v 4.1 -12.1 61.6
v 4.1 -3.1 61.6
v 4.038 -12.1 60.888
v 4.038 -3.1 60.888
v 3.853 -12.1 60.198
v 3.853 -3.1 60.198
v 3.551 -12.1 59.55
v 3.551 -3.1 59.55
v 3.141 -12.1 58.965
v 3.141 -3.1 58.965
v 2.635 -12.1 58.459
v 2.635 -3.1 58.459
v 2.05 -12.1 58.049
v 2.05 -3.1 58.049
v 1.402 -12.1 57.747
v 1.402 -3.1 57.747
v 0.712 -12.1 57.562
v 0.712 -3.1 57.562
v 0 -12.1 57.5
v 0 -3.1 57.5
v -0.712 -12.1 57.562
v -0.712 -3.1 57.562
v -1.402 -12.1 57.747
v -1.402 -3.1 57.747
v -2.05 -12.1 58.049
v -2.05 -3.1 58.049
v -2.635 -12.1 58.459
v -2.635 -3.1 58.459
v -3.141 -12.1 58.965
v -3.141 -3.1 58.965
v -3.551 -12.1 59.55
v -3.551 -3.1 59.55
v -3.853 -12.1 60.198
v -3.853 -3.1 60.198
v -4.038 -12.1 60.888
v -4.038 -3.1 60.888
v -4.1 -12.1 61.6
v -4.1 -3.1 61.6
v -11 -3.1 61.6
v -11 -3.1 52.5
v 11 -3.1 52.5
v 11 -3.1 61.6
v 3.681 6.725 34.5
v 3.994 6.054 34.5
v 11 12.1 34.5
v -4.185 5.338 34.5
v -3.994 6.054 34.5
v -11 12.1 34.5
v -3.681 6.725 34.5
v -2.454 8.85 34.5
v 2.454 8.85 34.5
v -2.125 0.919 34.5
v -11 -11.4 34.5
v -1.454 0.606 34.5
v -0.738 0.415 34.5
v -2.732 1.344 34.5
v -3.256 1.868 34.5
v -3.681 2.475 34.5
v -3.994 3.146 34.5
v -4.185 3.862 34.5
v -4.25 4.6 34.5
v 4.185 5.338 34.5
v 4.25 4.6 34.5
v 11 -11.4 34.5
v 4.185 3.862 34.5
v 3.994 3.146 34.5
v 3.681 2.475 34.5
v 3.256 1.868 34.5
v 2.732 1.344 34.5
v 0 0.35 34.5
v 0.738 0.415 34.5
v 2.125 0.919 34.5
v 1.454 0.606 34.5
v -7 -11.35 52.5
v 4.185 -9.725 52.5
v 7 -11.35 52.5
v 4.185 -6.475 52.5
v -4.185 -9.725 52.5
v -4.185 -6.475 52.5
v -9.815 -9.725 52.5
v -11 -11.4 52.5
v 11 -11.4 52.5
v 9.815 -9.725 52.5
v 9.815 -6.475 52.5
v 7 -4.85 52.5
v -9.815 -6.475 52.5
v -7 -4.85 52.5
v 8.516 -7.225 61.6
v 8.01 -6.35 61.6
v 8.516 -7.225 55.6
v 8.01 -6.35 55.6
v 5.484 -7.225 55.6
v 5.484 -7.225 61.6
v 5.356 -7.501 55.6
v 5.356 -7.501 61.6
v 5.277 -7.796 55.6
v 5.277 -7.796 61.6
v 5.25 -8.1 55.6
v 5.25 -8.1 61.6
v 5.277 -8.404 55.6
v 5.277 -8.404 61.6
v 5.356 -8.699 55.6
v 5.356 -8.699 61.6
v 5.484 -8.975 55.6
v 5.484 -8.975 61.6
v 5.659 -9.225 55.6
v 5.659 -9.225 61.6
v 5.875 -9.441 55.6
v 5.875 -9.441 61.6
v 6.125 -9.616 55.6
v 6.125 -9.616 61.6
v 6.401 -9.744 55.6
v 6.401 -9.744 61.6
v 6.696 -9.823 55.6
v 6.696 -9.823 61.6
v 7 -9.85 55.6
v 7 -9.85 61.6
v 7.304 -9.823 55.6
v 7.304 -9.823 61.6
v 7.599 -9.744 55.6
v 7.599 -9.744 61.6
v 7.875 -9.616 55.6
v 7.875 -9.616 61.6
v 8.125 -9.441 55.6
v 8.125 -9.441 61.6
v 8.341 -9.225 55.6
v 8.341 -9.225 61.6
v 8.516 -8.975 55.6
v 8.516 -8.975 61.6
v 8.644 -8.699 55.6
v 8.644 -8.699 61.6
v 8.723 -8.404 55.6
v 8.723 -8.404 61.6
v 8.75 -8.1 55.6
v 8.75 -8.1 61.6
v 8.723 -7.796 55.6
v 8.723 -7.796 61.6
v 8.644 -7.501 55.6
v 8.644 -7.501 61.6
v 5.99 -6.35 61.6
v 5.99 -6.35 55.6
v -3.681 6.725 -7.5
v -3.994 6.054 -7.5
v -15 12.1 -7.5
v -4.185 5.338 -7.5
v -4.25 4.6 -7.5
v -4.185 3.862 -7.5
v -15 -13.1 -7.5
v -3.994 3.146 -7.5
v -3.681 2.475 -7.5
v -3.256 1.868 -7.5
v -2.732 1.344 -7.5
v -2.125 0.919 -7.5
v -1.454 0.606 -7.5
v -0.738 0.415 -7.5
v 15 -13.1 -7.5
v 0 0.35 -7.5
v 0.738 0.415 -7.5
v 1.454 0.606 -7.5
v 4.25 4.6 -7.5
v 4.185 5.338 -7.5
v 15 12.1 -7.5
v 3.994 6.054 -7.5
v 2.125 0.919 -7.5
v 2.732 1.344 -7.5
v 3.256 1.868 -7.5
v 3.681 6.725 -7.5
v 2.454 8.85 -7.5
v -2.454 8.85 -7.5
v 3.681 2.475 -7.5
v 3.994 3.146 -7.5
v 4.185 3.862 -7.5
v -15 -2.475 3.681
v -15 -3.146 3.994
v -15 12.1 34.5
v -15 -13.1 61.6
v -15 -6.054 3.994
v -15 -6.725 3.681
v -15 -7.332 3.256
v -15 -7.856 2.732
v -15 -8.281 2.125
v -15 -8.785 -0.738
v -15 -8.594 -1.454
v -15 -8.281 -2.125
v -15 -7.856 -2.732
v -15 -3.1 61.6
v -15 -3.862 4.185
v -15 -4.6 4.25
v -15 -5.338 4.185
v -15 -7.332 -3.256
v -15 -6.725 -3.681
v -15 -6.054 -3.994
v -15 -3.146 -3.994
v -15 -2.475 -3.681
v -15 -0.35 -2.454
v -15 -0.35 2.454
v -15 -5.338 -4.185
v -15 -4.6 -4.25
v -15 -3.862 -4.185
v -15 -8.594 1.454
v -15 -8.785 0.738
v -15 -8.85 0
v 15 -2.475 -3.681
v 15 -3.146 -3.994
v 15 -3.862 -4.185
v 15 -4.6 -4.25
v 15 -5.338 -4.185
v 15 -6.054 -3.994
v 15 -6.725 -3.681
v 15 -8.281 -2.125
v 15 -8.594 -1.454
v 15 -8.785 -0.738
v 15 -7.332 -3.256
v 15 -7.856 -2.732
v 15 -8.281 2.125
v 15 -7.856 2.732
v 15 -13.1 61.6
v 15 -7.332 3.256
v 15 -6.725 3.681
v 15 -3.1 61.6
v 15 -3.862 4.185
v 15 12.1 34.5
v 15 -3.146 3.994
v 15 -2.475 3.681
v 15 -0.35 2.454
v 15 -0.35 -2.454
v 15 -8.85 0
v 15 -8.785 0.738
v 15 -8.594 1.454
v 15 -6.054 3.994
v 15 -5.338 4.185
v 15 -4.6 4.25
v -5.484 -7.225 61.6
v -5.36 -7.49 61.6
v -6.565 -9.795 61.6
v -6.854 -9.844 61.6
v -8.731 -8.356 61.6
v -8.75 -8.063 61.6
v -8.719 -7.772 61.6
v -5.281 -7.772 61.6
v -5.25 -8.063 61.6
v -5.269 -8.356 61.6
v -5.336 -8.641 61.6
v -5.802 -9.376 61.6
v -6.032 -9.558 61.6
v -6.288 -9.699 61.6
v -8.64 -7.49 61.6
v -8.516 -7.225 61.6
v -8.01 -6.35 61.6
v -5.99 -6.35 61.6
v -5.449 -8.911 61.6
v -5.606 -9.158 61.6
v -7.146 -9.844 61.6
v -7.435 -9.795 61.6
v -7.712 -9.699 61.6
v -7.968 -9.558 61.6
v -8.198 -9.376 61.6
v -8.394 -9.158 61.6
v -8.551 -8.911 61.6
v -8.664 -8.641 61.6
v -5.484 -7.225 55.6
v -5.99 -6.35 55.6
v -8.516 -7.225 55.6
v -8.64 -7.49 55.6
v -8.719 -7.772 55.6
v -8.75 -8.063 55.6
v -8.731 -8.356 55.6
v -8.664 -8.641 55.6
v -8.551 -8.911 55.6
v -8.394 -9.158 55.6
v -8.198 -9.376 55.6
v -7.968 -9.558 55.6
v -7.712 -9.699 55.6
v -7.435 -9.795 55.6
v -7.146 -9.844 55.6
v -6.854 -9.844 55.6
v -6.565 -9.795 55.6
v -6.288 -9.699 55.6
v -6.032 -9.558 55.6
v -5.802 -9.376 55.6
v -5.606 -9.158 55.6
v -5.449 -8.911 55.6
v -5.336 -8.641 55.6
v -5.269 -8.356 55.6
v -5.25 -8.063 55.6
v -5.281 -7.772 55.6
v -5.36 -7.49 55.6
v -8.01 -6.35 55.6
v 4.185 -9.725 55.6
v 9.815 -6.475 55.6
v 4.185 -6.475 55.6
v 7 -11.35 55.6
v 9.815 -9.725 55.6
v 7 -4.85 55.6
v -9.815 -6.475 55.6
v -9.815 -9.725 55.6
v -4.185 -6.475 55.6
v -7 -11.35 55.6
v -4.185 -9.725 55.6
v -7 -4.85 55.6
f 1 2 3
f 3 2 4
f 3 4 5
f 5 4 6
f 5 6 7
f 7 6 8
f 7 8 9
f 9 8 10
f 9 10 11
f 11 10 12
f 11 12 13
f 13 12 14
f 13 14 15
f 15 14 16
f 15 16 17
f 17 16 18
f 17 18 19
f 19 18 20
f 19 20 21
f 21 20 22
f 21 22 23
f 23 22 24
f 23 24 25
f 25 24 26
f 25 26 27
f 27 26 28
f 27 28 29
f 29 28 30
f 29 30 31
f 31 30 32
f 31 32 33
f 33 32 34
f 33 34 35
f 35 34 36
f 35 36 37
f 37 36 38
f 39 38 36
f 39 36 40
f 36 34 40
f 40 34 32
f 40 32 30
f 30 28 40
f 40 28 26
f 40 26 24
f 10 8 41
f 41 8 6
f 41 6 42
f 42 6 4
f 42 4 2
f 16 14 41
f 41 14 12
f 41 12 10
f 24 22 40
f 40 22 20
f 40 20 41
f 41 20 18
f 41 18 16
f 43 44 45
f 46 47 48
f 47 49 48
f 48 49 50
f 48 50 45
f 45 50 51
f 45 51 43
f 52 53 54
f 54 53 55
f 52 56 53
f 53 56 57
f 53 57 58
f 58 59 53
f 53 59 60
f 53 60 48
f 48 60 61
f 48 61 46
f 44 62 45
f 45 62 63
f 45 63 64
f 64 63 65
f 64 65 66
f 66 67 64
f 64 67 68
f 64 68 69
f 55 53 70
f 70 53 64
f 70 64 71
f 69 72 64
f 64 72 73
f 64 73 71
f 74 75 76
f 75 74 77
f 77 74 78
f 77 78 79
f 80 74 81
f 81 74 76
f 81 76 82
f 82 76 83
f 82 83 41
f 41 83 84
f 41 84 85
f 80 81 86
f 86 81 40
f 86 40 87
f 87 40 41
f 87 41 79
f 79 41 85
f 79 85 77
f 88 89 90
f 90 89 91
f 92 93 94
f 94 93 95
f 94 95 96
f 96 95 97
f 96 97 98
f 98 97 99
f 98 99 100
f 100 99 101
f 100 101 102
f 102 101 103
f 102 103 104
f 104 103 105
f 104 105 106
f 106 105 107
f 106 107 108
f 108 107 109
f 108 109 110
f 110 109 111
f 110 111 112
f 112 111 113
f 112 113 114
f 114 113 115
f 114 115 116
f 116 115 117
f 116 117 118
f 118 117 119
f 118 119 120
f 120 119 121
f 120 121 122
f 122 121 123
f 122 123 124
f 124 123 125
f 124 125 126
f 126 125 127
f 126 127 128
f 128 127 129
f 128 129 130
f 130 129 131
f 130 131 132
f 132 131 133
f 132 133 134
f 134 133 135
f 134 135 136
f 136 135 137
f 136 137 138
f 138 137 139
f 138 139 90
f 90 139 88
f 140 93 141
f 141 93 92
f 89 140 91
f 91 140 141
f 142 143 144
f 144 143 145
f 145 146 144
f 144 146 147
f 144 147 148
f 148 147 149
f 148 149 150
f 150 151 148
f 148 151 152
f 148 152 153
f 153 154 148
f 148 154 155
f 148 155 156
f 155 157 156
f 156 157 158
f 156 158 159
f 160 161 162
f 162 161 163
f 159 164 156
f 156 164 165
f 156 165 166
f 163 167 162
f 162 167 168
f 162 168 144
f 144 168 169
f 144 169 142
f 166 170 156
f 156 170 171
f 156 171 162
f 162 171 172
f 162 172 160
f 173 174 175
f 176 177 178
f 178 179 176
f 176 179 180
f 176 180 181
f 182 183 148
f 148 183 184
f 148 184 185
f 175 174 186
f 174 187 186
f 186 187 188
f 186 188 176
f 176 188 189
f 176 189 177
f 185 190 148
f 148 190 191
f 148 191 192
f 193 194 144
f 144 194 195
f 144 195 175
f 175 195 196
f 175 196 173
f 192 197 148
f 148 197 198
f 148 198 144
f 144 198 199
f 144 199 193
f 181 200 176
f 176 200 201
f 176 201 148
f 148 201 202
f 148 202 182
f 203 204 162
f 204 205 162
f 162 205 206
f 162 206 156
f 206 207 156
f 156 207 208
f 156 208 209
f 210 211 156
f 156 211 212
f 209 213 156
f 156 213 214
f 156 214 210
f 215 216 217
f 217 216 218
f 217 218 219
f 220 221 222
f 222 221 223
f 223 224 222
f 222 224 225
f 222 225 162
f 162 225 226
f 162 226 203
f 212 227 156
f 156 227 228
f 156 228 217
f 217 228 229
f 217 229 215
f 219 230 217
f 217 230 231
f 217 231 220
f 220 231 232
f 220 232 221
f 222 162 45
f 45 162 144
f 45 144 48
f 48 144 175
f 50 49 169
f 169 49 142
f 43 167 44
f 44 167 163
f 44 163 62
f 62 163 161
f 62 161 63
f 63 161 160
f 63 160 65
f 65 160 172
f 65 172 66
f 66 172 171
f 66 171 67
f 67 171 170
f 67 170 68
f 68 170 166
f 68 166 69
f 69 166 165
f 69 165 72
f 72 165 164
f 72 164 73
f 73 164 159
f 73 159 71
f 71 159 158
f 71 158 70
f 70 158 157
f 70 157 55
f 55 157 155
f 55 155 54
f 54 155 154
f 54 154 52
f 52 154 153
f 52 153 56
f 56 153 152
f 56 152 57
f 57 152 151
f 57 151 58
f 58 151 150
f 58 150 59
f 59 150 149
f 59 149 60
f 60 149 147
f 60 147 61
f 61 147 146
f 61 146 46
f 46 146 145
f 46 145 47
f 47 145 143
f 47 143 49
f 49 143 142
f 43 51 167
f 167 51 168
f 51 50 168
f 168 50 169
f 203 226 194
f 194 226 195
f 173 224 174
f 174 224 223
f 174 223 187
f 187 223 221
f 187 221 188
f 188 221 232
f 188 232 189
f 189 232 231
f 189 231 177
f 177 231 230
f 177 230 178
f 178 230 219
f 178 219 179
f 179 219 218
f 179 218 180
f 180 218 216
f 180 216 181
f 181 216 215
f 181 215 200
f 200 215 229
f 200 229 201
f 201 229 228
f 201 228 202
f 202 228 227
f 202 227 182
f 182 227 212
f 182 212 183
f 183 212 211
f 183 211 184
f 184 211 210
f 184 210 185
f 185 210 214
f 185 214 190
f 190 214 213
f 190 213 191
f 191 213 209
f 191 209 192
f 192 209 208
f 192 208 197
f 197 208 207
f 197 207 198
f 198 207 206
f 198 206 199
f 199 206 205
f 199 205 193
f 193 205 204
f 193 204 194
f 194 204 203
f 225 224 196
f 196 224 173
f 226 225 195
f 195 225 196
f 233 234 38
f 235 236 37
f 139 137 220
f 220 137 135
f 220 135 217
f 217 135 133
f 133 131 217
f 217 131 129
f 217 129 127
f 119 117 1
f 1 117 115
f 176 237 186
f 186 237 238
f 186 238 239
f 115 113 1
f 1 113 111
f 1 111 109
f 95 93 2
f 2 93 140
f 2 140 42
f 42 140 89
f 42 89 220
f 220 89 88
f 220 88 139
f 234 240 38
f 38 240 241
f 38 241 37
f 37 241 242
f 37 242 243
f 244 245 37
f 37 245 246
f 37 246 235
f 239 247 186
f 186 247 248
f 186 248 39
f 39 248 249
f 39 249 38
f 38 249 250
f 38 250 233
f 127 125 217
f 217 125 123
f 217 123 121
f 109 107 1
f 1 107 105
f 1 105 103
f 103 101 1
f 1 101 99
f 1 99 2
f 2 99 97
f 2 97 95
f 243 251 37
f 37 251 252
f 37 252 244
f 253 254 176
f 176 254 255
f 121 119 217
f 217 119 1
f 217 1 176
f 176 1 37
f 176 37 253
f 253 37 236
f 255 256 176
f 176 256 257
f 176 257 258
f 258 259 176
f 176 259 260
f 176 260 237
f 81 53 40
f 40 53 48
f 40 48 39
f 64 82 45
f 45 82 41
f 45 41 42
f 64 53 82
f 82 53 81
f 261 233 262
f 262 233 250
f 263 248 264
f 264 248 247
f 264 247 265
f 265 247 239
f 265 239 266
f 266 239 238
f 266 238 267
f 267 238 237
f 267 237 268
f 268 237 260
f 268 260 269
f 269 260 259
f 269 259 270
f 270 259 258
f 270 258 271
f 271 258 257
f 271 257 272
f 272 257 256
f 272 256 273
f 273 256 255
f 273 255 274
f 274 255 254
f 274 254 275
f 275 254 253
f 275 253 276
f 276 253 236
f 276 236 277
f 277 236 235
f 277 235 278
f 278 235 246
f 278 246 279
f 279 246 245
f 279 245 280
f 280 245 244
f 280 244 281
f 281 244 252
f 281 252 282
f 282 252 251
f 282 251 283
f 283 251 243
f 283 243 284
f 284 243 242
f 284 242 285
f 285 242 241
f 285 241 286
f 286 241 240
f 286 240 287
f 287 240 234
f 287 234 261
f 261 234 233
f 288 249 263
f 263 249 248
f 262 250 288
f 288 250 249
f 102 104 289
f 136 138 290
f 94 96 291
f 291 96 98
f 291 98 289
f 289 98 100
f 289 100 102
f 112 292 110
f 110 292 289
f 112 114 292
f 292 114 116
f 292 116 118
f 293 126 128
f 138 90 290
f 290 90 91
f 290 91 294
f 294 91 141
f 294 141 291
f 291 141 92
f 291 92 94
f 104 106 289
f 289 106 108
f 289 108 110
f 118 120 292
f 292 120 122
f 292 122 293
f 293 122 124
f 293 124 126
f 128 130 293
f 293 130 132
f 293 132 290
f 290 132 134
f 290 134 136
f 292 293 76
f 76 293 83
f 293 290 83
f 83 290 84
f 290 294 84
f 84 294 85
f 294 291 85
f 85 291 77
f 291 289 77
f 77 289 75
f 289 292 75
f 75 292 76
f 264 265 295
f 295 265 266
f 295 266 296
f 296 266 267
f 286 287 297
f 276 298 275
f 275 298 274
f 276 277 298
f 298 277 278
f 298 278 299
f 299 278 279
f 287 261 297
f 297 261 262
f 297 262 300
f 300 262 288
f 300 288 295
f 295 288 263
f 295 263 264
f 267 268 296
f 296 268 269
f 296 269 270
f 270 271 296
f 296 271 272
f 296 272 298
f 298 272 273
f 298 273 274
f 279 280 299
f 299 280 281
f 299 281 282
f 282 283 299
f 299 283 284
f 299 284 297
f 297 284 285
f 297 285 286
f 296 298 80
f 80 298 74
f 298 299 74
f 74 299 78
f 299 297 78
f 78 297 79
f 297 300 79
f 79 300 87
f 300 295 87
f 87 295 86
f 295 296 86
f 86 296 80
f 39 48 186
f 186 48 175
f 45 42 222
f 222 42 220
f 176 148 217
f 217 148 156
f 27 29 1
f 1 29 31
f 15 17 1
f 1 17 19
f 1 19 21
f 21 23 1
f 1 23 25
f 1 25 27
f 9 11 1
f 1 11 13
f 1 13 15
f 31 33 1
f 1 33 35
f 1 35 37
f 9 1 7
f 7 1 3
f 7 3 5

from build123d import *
from build123d.topology import SkipClean

# Parameters (mm, degrees)
SCHIZZO7_W                    = 30
SCHIZZO7_H                    = 24.2
ESTRUSIONE_ESTRUSIONE3_DEPTH  = 7.5
TAGLIO_ESTRUSIONE1_REACH      = 35.206
SCHIZZO12_W                   = 30
SCHIZZO12_H                   = 9
ESTRUSIONE_ESTRUSIONE5_DEPTH  = 54.1
TAGLIO_ESTRUSIONE3_REACH      = 67.197
SCHIZZO15_W                   = 22
SCHIZZO15_H                   = 18
TAGLIO_ESTRUSIONE4_DEPTH      = 8.3
TAGLIO_ESTRUSIONE5_REACH      = 73.737
TAGLIO_ESTRUSIONE6_DEPTH      = 3.1
SCHIZZO20_W                   = 30
SCHIZZO20_H                   = 15.2
ESTRUSIONE_ESTRUSIONE6_DEPTH  = 27
ESTRUSIONE_ESTRUSIONE7_DEPTH  = 4
ESTRUSIONE_ESTRUSIONE8_DEPTH  = 4
ESTRUSIONE_ESTRUSIONE9_DEPTH  = 1
ESTRUSIONE_ESTRUSIONE10_START = -13.1
ESTRUSIONE_ESTRUSIONE10_DEPTH = 1


# Read off the part's stored shape, not the designer's step: Estrusione-Estrusione10
with BuildPart() as part:
    # Schizzo7 → Estrusione-Estrusione3 (new, symmetric)
    with BuildSketch(Plane.XY):
        Rectangle(SCHIZZO7_W, SCHIZZO7_H)
        with BuildLine():
            Line((2.453738644, 8.85), (-2.453738644, 8.85))
            Line((-2.453738644, 8.85), (-3.680607966, 6.725))
            ThreePointArc((-3.680607966, 6.725), (0, 0.35), (3.680607966, 6.725))
            Line((3.680607966, 6.725), (2.453738644, 8.85))
        make_face(mode=Mode.SUBTRACT)
    extrude(amount=ESTRUSIONE_ESTRUSIONE3_DEPTH, both=True)

    # Schizzo8 → Taglio-Estrusione1 (cut, up to next)
    with BuildSketch(Plane(origin=(15, 0, 0), x_dir=(0, 0, -1), z_dir=(1, 0, 0)), mode=Mode.PRIVATE) as taglio_estrusione1_sk1:
        with BuildLine():
            Line((-2.453738644, -0.35), (2.453738644, -0.35))
            Line((2.453738644, -0.35), (3.680607966, -2.475))
            ThreePointArc((3.680607966, -2.475), (0, -8.85), (-3.680607966, -2.475))
            Line((-3.680607966, -2.475), (-2.453738644, -0.35))
        make_face()
    taglio_estrusione1_tool1 = extrude(taglio_estrusione1_sk1.sketch, amount=-TAGLIO_ESTRUSIONE1_REACH, mode=Mode.PRIVATE) & part.part
    add(taglio_estrusione1_tool1.solids().sort_by_distance((15, -4.474132, 0))[0], mode=Mode.SUBTRACT)

    # Schizzo12 → Estrusione-Estrusione5 (add)
    with BuildSketch(Plane.XY.offset(7.5)):
        with Locations((0, -7.6)):
            Rectangle(SCHIZZO12_W, SCHIZZO12_H)
    extrude(amount=ESTRUSIONE_ESTRUSIONE5_DEPTH)

    # Schizzo14 → Taglio-Estrusione3 (cut, up to next)
    with BuildSketch(Plane(origin=(0, -3.1, 0), x_dir=(1, 0, 0), z_dir=(0, 1, 0)), mode=Mode.PRIVATE) as taglio_estrusione3_sk1:
        with BuildLine():
            Line((4.1, -61.6), (-4.1, -61.6))
            ThreePointArc((-4.1, -61.6), (0, -57.5), (4.1, -61.6))
        make_face()
    taglio_estrusione3_tool1 = extrude(taglio_estrusione3_sk1.sketch, amount=-TAGLIO_ESTRUSIONE3_REACH, mode=Mode.PRIVATE) & part.part
    add(taglio_estrusione3_tool1.solids().sort_by_distance((0, -3.1, 59.859906))[0], mode=Mode.SUBTRACT)

    # Schizzo15 → Taglio-Estrusione4 (cut)
    with BuildSketch(Plane(origin=(0, -3.1, 0), x_dir=(1, 0, 0), z_dir=(0, 1, 0))):
        with Locations((0, -43.5)):
            Rectangle(SCHIZZO15_W, SCHIZZO15_H)
    extrude(amount=-TAGLIO_ESTRUSIONE4_DEPTH, mode=Mode.SUBTRACT)

    # Schizzo16 → Taglio-Estrusione5 (cut, up to next)
    with BuildSketch(Plane.XY.offset(61.6), mode=Mode.PRIVATE) as taglio_estrusione5_sk1:
        with BuildLine():
            Line((-8.010362971, -6.35), (-5.989637029, -6.35))
            Line((-5.989637029, -6.35), (-5.484455543, -7.225))
            ThreePointArc((-5.484455543, -7.225), (-7, -9.85), (-8.515544457, -7.225))
            Line((-8.515544457, -7.225), (-8.010362971, -6.35))
        make_face()
    taglio_estrusione5_tool1 = extrude(taglio_estrusione5_sk1.sketch, amount=-TAGLIO_ESTRUSIONE5_REACH, mode=Mode.PRIVATE) & part.part
    # Schizzo16 → Taglio-Estrusione5 (cut, up to next)
    with BuildSketch(Plane.XY.offset(61.6), mode=Mode.PRIVATE) as taglio_estrusione5_sk2:
        with BuildLine():
            Line((5.989637029, -6.35), (8.010362971, -6.35))
            Line((8.010362971, -6.35), (8.515544457, -7.225))
            ThreePointArc((8.515544457, -7.225), (7, -9.85), (5.484455543, -7.225))
            Line((5.484455543, -7.225), (5.989637029, -6.35))
        make_face()
    taglio_estrusione5_tool2 = extrude(taglio_estrusione5_sk2.sketch, amount=-TAGLIO_ESTRUSIONE5_REACH, mode=Mode.PRIVATE) & part.part
    add(taglio_estrusione5_tool1.solids().sort_by_distance((-7, -8.048172, 61.6))[0], mode=Mode.SUBTRACT)
    add(taglio_estrusione5_tool2.solids().sort_by_distance((7, -8.048172, 61.6))[0], mode=Mode.SUBTRACT)

    # Schizzo17 → Taglio-Estrusione6 (cut)
    with BuildSketch(Plane(origin=(0, 0, 52.5), x_dir=(-1, 0, 0), z_dir=(0, 0, -1))):
        Polygon((-7, -11.35), (-4.185417438, -9.725), (-4.185417438, -6.475), (-7, -4.85), (-9.814582562, -6.475), (-9.814582562, -9.725), align=None)
        Polygon((9.814582562, -9.725), (7, -11.35), (4.185417438, -9.725), (4.185417438, -6.475), (7, -4.85), (9.814582562, -6.475), align=None)
    extrude(amount=-TAGLIO_ESTRUSIONE6_DEPTH, mode=Mode.SUBTRACT)

    # Schizzo20 → Estrusione-Estrusione6 (add)
    with SkipClean():  # the faces are left unmerged after this step: merging them gives an invalid solid
        with BuildSketch(Plane.XY.offset(7.5)):
            with Locations((0, 4.5)):
                Rectangle(SCHIZZO20_W, SCHIZZO20_H)
            with BuildLine():
                Line((-2.453738644, 8.85), (2.453738644, 8.85))
                Line((2.453738644, 8.85), (3.680607966, 6.725))
                ThreePointArc((3.680607966, 6.725), (0, 0.35), (-3.680607966, 6.725))
                Line((-3.680607966, 6.725), (-2.453738644, 8.85))
            make_face(mode=Mode.SUBTRACT)
        extrude(amount=ESTRUSIONE_ESTRUSIONE6_DEPTH)

    # Schizzo21 → Estrusione-Estrusione7 (add)
    with SkipClean():  # the faces are left unmerged after this step: merging them gives an invalid solid
        with BuildSketch(Plane.ZY.offset(15)):
            Polygon((34.5, 12.1), (61.6, -3.1), (34.5, -3.1), align=None)
        extrude(amount=-ESTRUSIONE_ESTRUSIONE7_DEPTH)

    # Schizzo22 → Estrusione-Estrusione8 (add)
    with SkipClean():  # the faces are left unmerged after this step: merging them gives an invalid solid
        with BuildSketch(Plane(origin=(15, 0, 0), x_dir=(0, 0, -1), z_dir=(1, 0, 0))):
            Polygon((-34.5, 12.1), (-61.6, -3.1), (-34.5, -3.1), align=None)
        extrude(amount=-ESTRUSIONE_ESTRUSIONE8_DEPTH)

    # Schizzo24 → Estrusione-Estrusione9 (add)
    with SkipClean():  # the faces are left unmerged after this step: merging them gives an invalid solid
        with BuildSketch(Plane.XZ.offset(12.1)):
            with BuildLine():
                Line((15, 61.6), (4.1, 61.6))
                ThreePointArc((4.1, 61.6), (0, 57.5), (-4.1, 61.6))
                Line((-4.1, 61.6), (-15, 61.6))
                Line((-15, 61.6), (-15, -7.5))
                Line((-15, -7.5), (15, -7.5))
                Line((15, -7.5), (15, 61.6))
            make_face()
        extrude(amount=ESTRUSIONE_ESTRUSIONE9_DEPTH)

    # Estrusione-Estrusione10 outline → Estrusione-Estrusione10 (add)
    with SkipClean():  # the faces are left unmerged after this step: merging them gives an invalid solid
        with BuildSketch(Plane(origin=(0, 0, 0), x_dir=(1, 0, 0), z_dir=(0, 1, 0)).offset(ESTRUSIONE_ESTRUSIONE10_START)):
            with BuildLine():
                Line((-4.1, -61.6), (4.1, -61.6))
                ThreePointArc((4.1, -61.6), (0, -57.5), (-4.1, -61.6))
            make_face()
        extrude(amount=ESTRUSIONE_ESTRUSIONE10_DEPTH)


solid = part.part
